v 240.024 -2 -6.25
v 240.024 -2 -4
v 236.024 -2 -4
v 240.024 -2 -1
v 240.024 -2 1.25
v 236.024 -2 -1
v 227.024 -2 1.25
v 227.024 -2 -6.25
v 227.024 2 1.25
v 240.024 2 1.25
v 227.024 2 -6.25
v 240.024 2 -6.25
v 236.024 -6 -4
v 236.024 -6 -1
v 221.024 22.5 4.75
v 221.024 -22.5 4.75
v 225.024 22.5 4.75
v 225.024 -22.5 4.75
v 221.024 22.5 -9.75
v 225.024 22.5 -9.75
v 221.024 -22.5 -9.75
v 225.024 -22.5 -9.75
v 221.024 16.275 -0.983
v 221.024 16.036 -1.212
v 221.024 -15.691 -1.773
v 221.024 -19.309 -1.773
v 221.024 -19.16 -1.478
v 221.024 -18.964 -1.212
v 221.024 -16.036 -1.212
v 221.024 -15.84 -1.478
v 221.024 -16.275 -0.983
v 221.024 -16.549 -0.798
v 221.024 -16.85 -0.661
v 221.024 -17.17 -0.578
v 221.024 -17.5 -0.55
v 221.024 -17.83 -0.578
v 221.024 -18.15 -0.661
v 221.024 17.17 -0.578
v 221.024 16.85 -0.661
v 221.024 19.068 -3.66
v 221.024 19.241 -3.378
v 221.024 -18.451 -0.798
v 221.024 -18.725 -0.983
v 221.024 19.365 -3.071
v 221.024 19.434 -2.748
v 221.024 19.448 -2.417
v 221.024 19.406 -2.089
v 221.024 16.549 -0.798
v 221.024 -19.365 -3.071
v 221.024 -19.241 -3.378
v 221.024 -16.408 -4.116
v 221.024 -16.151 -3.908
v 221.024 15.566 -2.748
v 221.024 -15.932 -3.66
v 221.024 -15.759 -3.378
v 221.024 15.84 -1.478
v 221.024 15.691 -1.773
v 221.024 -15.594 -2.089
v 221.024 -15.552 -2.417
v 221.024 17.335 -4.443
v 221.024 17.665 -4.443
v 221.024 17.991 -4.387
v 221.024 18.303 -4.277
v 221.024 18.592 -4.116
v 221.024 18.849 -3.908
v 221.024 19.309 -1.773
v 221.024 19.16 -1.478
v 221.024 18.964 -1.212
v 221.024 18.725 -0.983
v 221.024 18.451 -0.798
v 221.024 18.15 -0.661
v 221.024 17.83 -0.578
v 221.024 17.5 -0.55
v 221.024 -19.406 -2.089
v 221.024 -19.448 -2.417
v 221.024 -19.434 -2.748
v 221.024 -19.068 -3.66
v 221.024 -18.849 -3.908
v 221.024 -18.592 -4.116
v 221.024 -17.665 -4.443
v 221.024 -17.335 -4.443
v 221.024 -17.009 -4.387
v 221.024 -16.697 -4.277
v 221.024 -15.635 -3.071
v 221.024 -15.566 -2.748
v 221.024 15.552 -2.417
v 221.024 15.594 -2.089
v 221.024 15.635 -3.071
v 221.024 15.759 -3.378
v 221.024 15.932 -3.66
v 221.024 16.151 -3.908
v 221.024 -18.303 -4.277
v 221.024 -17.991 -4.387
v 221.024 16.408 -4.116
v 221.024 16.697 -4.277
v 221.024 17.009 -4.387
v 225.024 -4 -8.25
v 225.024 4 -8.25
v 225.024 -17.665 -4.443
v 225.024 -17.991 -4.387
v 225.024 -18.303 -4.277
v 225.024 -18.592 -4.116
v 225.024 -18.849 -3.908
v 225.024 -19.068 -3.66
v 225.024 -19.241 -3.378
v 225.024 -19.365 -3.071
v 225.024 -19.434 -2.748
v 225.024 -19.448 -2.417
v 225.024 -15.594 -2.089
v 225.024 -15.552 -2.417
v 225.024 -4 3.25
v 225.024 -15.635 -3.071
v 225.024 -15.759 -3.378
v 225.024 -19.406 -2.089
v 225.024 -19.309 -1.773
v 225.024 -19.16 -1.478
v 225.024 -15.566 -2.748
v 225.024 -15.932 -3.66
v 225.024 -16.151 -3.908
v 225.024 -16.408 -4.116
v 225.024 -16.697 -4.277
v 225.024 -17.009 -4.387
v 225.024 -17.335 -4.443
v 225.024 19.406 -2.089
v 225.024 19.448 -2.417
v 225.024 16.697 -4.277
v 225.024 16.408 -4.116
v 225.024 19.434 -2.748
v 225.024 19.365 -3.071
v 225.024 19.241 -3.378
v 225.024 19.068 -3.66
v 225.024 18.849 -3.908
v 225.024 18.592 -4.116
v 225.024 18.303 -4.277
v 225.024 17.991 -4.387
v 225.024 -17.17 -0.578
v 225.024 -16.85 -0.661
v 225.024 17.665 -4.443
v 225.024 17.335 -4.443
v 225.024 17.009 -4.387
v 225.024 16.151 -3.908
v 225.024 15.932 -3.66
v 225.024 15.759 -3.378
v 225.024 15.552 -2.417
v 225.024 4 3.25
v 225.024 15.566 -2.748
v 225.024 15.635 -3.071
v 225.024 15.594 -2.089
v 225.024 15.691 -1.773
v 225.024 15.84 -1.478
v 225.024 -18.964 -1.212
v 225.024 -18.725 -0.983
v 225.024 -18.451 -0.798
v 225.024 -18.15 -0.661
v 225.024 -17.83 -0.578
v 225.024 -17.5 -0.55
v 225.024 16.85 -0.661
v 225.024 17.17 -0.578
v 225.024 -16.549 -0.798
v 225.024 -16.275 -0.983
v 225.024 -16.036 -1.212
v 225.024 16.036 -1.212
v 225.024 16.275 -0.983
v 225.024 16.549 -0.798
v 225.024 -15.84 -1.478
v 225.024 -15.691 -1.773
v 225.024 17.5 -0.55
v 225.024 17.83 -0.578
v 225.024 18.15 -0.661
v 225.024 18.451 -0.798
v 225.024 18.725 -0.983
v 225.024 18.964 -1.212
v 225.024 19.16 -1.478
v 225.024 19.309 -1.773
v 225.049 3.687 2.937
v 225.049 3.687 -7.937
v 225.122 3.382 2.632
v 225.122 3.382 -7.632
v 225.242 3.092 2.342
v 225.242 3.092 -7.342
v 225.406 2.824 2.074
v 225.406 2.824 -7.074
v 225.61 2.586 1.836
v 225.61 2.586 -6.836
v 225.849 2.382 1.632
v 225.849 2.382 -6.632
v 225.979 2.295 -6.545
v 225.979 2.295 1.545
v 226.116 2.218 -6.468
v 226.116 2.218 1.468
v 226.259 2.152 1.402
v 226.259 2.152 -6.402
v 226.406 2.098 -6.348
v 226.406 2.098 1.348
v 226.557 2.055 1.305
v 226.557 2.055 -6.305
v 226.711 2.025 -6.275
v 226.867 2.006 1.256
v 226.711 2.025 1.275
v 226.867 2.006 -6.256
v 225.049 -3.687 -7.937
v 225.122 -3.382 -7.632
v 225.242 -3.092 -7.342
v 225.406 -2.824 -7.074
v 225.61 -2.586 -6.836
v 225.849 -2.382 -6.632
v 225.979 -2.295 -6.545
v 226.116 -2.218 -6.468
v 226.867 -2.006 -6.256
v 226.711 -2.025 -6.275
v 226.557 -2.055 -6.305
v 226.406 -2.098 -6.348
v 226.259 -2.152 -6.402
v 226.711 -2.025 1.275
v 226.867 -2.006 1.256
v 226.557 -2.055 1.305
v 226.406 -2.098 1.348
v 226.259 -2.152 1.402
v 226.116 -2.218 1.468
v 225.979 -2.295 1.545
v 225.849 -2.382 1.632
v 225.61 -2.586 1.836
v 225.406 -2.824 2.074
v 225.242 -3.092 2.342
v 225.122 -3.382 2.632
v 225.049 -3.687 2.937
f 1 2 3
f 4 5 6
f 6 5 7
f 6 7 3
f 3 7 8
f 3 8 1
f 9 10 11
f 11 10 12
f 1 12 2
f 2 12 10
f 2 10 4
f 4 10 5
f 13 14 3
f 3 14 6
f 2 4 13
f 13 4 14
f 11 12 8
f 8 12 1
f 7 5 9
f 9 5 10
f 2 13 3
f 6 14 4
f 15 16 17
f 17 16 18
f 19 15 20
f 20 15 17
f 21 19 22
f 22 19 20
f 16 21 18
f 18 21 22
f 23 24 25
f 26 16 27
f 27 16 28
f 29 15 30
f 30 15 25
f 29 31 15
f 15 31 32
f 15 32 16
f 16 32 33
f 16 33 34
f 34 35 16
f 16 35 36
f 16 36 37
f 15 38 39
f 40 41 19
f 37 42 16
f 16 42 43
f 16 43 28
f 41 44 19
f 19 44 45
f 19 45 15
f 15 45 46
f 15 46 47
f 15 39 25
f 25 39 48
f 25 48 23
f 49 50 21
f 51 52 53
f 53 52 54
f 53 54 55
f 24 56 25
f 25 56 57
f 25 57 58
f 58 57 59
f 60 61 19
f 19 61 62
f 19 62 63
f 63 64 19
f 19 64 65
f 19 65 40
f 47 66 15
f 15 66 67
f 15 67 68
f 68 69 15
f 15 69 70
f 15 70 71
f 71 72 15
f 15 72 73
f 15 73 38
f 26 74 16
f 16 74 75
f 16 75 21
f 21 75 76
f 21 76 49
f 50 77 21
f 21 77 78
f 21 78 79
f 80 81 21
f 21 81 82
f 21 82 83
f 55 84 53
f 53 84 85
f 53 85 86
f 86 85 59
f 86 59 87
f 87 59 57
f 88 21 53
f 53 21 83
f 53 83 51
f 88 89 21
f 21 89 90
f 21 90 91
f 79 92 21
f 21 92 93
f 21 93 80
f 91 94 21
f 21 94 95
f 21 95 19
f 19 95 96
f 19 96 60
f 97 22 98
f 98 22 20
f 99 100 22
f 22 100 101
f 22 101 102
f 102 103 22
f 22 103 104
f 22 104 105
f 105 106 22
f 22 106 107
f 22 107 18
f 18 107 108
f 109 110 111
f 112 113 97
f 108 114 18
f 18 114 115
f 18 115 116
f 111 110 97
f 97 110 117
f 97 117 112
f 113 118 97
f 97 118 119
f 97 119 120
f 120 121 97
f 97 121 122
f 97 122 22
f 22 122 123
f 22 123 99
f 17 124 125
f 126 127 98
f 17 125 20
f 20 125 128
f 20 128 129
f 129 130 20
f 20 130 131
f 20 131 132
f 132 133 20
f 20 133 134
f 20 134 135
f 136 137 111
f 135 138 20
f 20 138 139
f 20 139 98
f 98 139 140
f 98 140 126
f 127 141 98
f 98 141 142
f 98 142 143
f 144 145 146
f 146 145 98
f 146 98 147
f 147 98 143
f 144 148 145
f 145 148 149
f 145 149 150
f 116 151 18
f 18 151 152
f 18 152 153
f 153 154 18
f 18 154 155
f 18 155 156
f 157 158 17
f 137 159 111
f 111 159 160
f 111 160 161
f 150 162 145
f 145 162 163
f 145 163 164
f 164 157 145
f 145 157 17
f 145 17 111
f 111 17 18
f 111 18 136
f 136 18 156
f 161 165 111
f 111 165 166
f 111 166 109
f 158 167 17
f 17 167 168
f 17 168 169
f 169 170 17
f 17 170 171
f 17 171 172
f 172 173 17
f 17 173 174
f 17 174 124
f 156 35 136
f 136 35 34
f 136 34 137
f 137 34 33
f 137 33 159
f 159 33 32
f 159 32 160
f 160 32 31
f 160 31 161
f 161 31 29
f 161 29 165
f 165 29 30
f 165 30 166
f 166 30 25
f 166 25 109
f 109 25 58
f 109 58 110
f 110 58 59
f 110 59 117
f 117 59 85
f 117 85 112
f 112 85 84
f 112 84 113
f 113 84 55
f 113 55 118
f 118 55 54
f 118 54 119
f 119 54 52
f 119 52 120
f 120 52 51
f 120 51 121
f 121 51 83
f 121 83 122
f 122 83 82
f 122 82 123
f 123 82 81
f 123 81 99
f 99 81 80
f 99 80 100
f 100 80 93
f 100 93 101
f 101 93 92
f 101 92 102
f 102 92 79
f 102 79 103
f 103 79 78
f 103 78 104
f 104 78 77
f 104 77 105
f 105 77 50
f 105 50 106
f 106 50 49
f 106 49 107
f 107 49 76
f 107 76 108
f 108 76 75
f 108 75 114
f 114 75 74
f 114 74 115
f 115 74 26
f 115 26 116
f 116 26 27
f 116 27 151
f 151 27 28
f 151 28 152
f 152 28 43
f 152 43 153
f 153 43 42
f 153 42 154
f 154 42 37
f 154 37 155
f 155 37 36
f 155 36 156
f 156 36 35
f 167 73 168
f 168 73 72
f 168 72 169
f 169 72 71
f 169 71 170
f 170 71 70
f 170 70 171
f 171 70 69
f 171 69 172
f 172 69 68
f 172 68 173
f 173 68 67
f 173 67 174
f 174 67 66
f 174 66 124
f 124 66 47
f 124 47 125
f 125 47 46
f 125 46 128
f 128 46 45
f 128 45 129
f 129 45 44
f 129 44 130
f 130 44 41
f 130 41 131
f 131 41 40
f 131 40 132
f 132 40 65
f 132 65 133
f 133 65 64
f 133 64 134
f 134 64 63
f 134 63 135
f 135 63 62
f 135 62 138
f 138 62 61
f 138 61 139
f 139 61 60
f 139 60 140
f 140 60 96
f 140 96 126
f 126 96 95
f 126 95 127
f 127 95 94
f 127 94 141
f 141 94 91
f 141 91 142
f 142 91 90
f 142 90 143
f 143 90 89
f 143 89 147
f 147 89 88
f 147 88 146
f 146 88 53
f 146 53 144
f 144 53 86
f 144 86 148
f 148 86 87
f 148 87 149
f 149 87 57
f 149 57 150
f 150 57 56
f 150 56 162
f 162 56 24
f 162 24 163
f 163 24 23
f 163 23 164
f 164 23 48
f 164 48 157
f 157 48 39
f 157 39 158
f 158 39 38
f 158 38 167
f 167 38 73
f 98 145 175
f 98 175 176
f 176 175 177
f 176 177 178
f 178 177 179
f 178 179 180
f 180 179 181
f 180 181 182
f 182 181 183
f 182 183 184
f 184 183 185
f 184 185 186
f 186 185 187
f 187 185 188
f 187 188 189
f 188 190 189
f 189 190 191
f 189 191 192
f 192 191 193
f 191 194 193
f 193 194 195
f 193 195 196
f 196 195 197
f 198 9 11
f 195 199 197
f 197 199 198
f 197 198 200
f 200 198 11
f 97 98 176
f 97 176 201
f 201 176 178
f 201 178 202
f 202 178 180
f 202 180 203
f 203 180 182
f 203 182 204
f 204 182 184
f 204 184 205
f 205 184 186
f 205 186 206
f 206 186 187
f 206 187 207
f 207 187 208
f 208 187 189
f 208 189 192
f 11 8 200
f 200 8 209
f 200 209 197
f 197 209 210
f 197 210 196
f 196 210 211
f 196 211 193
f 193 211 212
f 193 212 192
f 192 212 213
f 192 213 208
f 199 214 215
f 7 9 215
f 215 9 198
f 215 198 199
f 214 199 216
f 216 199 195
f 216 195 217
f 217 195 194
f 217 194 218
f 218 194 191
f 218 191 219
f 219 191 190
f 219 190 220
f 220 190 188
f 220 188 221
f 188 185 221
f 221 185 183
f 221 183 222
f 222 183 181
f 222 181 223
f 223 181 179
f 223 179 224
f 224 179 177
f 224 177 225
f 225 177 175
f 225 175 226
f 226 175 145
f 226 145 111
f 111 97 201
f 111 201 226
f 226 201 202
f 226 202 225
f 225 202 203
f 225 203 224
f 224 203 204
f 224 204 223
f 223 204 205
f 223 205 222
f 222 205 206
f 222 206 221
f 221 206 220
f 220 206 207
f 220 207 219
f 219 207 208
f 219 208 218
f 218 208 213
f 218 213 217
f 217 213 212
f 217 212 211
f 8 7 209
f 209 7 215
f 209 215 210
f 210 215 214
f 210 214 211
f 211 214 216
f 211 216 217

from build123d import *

# Parameters (mm, degrees)
BOSS_EXTRUDE1_DEPTH      = 1
BOSS_EXTRUDE1_DEPTH_BACK = 1
SKETCH2_R                = 2
SKETCH2_R_2              = 1
BOSS_EXTRUDE2_DEPTH      = 4
SKETCH4_R                = 1.07
CUT_EXTRUDE1_DEPTH       = 233.583689314
BOSS_EXTRUDE3_DEPTH      = 2
SKETCH8_W                = 4
SKETCH8_H                = 8
BOSS_EXTRUDE4_DEPTH      = 2
CUT_EXTRUDE2_DEPTH       = 2
SKETCH10_W               = 16.5
SKETCH10_H               = 4
BOSS_EXTRUDE5_DEPTH      = 2.75
SKETCH11_W               = 16.5
SKETCH11_H               = 4
BOSS_EXTRUDE6_DEPTH      = 2.75
BOSS_EXTRUDE7_DEPTH      = 0.5
BOSS_EXTRUDE8_DEPTH      = 0.5
SKETCH14_W               = 1.779922348
SKETCH14_H               = 4
BOSS_EXTRUDE9_DEPTH      = 7.5
CUT_EXTRUDE3_DEPTH       = 10
CUT_EXTRUDE3_DEPTH_BACK  = 2
SKETCH15_W               = 40
SKETCH15_H               = 27.31360861
SKETCH16_W               = 14.5
SKETCH16_H               = 45
BOSS_EXTRUDE10_DEPTH     = 4
SKETCH18_R               = 1.95
CUT_EXTRUDE4_DEPTH       = 4
FILLET1_R                = 2


with BuildPart() as part:
    # Sketch2 → Boss-Extrude1 (new, two sides: drawn at the far end of the back side and taken through both)
    # profile 1 of 2: a face of its own
    with BuildSketch(Plane.XY.offset(-2.5).offset(-BOSS_EXTRUDE1_DEPTH_BACK)):
        with BuildLine():
            ThreePointArc((230.02407749, -2), (228.02407749, 0), (230.02407749, 2))
            Line((230.02407749, 2), (225.02407749, 2))
            Line((225.02407749, 2), (225.02407749, -2))
            Line((225.02407749, -2), (230.02407749, -2))
        make_face()
    # profile 2 of 2: a face of its own
    with BuildSketch(Plane.XY.offset(-2.5).offset(-BOSS_EXTRUDE1_DEPTH_BACK)):
        with Locations((230.02407749, 0)):
            Circle(SKETCH2_R)
        with Locations((230.02407749, 0)):
            Circle(SKETCH2_R_2, mode=Mode.SUBTRACT)
    extrude(amount=BOSS_EXTRUDE1_DEPTH + BOSS_EXTRUDE1_DEPTH_BACK)

    # Sketch3 → Boss-Extrude2 (add)
    with BuildSketch(Plane(origin=(0, 2, 0), x_dir=(1, 0, 0), z_dir=(0, 1, 0))):
        Polygon((223.02407749, 2.5), (225.02407749, 2.5), (225.02407749, 3.5), (222.02407749, 10.5), (216.095506061, 10.5), (216.095506061, 8.5), (221.095506061, 8.5), (223.02407749, 4), align=None)
        Polygon((222.02407749, -5.5), (225.02407749, 1.5), (225.02407749, 2.5), (223.02407749, 2.5), (223.02407749, 1), (221.095506061, -3.5), (216.095506061, -3.5), (216.095506061, -5.5), align=None)
    extrude(amount=-BOSS_EXTRUDE2_DEPTH)

    # Sketch4 → Cut-Extrude1 (cut, through all)
    with BuildSketch(Plane(origin=(0, 0, -10.5), x_dir=(-1, 0, 0), z_dir=(0, 0, -1))):
        with Locations((-218.095506061, 0)):
            Circle(SKETCH4_R)
    extrude(amount=-CUT_EXTRUDE1_DEPTH, mode=Mode.SUBTRACT)

    # Sketch6 → Boss-Extrude3 (add)
    with BuildSketch(Plane.XY.offset(-1.5)):
        Polygon((230.02407749, 2), (240.02407749, 2), (240.02407749, -2), (230.02407749, -2), (228.102487775, -2), (228.102487775, 2), align=None)
    extrude(amount=-BOSS_EXTRUDE3_DEPTH)

    # Sketch8 → Boss-Extrude4 (add)
    with BuildSketch(Plane(origin=(0, 0, -3.5), x_dir=(-1, 0, 0), z_dir=(0, 0, -1))):
        with Locations((-238.02407749, -2)):
            Rectangle(SKETCH8_W, SKETCH8_H)
    extrude(amount=-BOSS_EXTRUDE4_DEPTH)

    # Sketch9 → Cut-Extrude2 (cut)
    with BuildSketch(Plane(origin=(0, 0, -3.5), x_dir=(-1, 0, 0), z_dir=(0, 0, -1))):
        Polygon((-236.02407749, -6), (-240.02407749, -6), (-240.02407749, -2), align=None)
    extrude(amount=-CUT_EXTRUDE2_DEPTH, mode=Mode.SUBTRACT)

    # Sketch10 → Boss-Extrude5 (add)
    with BuildSketch(Plane(origin=(0, 0, -3.5), x_dir=(-1, 0, 0), z_dir=(0, 0, -1))):
        with Locations((-231.77407749, 0)):
            Rectangle(SKETCH10_W, SKETCH10_H)
    extrude(amount=BOSS_EXTRUDE5_DEPTH)

    # Sketch11 → Boss-Extrude6 (add)
    with BuildSketch(Plane.XY.offset(-1.5)):
        with Locations((231.77407749, 0)):
            Rectangle(SKETCH11_W, SKETCH11_H)
    extrude(amount=BOSS_EXTRUDE6_DEPTH)

    # Sketch12 → Boss-Extrude7 (add)
    with BuildSketch(Plane(origin=(0, 0, -3.5), x_dir=(-1, 0, 0), z_dir=(0, 0, -1))):
        Polygon((-240.02407749, -2), (-236.02407749, -6), (-236.02407749, -2), align=None)
    extrude(amount=BOSS_EXTRUDE7_DEPTH)

    # Sketch13 → Boss-Extrude8 (add)
    with BuildSketch(Plane.XY.offset(-1.5)):
        Polygon((236.02407749, -2), (236.02407749, -6), (240.02407749, -2), align=None)
    extrude(amount=BOSS_EXTRUDE8_DEPTH)

    # Sketch14 → Boss-Extrude9 (add)
    with BuildSketch(Plane(origin=(0, 0, -6.25), x_dir=(-1, 0, 0), z_dir=(0, 0, -1))):
        with Locations((-223.914038664, 0)):
            Rectangle(SKETCH14_W, SKETCH14_H)
    extrude(amount=-BOSS_EXTRUDE9_DEPTH)

    # Sketch15 → Cut-Extrude3 (cut, two sides: drawn at the far end of the back side and taken through both)
    with BuildSketch(Plane.ZY.offset(-223.02407749).offset(-CUT_EXTRUDE3_DEPTH_BACK)):
        with Locations((-2.5, 0)):
            Rectangle(SKETCH15_W, SKETCH15_H)
    extrude(amount=CUT_EXTRUDE3_DEPTH + CUT_EXTRUDE3_DEPTH_BACK, mode=Mode.SUBTRACT)

    # Sketch16 → Boss-Extrude10 (add)
    with BuildSketch(Plane.ZY.offset(-225.02407749)):
        with Locations((-2.5, 0)):
            Rectangle(SKETCH16_W, SKETCH16_H)
    extrude(amount=BOSS_EXTRUDE10_DEPTH)

    # Sketch18 → Cut-Extrude4 (cut)
    with BuildSketch(Plane.ZY.offset(-221.02407749)):
        with Locations((-2.5, 17.5)):
            Circle(SKETCH18_R)
        with Locations((-2.5, -17.5)):
            Circle(SKETCH18_R)
    extrude(amount=-CUT_EXTRUDE4_DEPTH, mode=Mode.SUBTRACT)

    # Fillet1
    fillet1_edges = [part.edges().sort_by_distance(p)[0] for p in [
        (225.02407749, 0, 1.25),
        (225.02407749, 0, -6.25),
        (225.02407749, -2, -2.5),
        (225.02407749, 2, -2.5),
    ]]
    fillet(fillet1_edges, radius=FILLET1_R)


solid = part.part
